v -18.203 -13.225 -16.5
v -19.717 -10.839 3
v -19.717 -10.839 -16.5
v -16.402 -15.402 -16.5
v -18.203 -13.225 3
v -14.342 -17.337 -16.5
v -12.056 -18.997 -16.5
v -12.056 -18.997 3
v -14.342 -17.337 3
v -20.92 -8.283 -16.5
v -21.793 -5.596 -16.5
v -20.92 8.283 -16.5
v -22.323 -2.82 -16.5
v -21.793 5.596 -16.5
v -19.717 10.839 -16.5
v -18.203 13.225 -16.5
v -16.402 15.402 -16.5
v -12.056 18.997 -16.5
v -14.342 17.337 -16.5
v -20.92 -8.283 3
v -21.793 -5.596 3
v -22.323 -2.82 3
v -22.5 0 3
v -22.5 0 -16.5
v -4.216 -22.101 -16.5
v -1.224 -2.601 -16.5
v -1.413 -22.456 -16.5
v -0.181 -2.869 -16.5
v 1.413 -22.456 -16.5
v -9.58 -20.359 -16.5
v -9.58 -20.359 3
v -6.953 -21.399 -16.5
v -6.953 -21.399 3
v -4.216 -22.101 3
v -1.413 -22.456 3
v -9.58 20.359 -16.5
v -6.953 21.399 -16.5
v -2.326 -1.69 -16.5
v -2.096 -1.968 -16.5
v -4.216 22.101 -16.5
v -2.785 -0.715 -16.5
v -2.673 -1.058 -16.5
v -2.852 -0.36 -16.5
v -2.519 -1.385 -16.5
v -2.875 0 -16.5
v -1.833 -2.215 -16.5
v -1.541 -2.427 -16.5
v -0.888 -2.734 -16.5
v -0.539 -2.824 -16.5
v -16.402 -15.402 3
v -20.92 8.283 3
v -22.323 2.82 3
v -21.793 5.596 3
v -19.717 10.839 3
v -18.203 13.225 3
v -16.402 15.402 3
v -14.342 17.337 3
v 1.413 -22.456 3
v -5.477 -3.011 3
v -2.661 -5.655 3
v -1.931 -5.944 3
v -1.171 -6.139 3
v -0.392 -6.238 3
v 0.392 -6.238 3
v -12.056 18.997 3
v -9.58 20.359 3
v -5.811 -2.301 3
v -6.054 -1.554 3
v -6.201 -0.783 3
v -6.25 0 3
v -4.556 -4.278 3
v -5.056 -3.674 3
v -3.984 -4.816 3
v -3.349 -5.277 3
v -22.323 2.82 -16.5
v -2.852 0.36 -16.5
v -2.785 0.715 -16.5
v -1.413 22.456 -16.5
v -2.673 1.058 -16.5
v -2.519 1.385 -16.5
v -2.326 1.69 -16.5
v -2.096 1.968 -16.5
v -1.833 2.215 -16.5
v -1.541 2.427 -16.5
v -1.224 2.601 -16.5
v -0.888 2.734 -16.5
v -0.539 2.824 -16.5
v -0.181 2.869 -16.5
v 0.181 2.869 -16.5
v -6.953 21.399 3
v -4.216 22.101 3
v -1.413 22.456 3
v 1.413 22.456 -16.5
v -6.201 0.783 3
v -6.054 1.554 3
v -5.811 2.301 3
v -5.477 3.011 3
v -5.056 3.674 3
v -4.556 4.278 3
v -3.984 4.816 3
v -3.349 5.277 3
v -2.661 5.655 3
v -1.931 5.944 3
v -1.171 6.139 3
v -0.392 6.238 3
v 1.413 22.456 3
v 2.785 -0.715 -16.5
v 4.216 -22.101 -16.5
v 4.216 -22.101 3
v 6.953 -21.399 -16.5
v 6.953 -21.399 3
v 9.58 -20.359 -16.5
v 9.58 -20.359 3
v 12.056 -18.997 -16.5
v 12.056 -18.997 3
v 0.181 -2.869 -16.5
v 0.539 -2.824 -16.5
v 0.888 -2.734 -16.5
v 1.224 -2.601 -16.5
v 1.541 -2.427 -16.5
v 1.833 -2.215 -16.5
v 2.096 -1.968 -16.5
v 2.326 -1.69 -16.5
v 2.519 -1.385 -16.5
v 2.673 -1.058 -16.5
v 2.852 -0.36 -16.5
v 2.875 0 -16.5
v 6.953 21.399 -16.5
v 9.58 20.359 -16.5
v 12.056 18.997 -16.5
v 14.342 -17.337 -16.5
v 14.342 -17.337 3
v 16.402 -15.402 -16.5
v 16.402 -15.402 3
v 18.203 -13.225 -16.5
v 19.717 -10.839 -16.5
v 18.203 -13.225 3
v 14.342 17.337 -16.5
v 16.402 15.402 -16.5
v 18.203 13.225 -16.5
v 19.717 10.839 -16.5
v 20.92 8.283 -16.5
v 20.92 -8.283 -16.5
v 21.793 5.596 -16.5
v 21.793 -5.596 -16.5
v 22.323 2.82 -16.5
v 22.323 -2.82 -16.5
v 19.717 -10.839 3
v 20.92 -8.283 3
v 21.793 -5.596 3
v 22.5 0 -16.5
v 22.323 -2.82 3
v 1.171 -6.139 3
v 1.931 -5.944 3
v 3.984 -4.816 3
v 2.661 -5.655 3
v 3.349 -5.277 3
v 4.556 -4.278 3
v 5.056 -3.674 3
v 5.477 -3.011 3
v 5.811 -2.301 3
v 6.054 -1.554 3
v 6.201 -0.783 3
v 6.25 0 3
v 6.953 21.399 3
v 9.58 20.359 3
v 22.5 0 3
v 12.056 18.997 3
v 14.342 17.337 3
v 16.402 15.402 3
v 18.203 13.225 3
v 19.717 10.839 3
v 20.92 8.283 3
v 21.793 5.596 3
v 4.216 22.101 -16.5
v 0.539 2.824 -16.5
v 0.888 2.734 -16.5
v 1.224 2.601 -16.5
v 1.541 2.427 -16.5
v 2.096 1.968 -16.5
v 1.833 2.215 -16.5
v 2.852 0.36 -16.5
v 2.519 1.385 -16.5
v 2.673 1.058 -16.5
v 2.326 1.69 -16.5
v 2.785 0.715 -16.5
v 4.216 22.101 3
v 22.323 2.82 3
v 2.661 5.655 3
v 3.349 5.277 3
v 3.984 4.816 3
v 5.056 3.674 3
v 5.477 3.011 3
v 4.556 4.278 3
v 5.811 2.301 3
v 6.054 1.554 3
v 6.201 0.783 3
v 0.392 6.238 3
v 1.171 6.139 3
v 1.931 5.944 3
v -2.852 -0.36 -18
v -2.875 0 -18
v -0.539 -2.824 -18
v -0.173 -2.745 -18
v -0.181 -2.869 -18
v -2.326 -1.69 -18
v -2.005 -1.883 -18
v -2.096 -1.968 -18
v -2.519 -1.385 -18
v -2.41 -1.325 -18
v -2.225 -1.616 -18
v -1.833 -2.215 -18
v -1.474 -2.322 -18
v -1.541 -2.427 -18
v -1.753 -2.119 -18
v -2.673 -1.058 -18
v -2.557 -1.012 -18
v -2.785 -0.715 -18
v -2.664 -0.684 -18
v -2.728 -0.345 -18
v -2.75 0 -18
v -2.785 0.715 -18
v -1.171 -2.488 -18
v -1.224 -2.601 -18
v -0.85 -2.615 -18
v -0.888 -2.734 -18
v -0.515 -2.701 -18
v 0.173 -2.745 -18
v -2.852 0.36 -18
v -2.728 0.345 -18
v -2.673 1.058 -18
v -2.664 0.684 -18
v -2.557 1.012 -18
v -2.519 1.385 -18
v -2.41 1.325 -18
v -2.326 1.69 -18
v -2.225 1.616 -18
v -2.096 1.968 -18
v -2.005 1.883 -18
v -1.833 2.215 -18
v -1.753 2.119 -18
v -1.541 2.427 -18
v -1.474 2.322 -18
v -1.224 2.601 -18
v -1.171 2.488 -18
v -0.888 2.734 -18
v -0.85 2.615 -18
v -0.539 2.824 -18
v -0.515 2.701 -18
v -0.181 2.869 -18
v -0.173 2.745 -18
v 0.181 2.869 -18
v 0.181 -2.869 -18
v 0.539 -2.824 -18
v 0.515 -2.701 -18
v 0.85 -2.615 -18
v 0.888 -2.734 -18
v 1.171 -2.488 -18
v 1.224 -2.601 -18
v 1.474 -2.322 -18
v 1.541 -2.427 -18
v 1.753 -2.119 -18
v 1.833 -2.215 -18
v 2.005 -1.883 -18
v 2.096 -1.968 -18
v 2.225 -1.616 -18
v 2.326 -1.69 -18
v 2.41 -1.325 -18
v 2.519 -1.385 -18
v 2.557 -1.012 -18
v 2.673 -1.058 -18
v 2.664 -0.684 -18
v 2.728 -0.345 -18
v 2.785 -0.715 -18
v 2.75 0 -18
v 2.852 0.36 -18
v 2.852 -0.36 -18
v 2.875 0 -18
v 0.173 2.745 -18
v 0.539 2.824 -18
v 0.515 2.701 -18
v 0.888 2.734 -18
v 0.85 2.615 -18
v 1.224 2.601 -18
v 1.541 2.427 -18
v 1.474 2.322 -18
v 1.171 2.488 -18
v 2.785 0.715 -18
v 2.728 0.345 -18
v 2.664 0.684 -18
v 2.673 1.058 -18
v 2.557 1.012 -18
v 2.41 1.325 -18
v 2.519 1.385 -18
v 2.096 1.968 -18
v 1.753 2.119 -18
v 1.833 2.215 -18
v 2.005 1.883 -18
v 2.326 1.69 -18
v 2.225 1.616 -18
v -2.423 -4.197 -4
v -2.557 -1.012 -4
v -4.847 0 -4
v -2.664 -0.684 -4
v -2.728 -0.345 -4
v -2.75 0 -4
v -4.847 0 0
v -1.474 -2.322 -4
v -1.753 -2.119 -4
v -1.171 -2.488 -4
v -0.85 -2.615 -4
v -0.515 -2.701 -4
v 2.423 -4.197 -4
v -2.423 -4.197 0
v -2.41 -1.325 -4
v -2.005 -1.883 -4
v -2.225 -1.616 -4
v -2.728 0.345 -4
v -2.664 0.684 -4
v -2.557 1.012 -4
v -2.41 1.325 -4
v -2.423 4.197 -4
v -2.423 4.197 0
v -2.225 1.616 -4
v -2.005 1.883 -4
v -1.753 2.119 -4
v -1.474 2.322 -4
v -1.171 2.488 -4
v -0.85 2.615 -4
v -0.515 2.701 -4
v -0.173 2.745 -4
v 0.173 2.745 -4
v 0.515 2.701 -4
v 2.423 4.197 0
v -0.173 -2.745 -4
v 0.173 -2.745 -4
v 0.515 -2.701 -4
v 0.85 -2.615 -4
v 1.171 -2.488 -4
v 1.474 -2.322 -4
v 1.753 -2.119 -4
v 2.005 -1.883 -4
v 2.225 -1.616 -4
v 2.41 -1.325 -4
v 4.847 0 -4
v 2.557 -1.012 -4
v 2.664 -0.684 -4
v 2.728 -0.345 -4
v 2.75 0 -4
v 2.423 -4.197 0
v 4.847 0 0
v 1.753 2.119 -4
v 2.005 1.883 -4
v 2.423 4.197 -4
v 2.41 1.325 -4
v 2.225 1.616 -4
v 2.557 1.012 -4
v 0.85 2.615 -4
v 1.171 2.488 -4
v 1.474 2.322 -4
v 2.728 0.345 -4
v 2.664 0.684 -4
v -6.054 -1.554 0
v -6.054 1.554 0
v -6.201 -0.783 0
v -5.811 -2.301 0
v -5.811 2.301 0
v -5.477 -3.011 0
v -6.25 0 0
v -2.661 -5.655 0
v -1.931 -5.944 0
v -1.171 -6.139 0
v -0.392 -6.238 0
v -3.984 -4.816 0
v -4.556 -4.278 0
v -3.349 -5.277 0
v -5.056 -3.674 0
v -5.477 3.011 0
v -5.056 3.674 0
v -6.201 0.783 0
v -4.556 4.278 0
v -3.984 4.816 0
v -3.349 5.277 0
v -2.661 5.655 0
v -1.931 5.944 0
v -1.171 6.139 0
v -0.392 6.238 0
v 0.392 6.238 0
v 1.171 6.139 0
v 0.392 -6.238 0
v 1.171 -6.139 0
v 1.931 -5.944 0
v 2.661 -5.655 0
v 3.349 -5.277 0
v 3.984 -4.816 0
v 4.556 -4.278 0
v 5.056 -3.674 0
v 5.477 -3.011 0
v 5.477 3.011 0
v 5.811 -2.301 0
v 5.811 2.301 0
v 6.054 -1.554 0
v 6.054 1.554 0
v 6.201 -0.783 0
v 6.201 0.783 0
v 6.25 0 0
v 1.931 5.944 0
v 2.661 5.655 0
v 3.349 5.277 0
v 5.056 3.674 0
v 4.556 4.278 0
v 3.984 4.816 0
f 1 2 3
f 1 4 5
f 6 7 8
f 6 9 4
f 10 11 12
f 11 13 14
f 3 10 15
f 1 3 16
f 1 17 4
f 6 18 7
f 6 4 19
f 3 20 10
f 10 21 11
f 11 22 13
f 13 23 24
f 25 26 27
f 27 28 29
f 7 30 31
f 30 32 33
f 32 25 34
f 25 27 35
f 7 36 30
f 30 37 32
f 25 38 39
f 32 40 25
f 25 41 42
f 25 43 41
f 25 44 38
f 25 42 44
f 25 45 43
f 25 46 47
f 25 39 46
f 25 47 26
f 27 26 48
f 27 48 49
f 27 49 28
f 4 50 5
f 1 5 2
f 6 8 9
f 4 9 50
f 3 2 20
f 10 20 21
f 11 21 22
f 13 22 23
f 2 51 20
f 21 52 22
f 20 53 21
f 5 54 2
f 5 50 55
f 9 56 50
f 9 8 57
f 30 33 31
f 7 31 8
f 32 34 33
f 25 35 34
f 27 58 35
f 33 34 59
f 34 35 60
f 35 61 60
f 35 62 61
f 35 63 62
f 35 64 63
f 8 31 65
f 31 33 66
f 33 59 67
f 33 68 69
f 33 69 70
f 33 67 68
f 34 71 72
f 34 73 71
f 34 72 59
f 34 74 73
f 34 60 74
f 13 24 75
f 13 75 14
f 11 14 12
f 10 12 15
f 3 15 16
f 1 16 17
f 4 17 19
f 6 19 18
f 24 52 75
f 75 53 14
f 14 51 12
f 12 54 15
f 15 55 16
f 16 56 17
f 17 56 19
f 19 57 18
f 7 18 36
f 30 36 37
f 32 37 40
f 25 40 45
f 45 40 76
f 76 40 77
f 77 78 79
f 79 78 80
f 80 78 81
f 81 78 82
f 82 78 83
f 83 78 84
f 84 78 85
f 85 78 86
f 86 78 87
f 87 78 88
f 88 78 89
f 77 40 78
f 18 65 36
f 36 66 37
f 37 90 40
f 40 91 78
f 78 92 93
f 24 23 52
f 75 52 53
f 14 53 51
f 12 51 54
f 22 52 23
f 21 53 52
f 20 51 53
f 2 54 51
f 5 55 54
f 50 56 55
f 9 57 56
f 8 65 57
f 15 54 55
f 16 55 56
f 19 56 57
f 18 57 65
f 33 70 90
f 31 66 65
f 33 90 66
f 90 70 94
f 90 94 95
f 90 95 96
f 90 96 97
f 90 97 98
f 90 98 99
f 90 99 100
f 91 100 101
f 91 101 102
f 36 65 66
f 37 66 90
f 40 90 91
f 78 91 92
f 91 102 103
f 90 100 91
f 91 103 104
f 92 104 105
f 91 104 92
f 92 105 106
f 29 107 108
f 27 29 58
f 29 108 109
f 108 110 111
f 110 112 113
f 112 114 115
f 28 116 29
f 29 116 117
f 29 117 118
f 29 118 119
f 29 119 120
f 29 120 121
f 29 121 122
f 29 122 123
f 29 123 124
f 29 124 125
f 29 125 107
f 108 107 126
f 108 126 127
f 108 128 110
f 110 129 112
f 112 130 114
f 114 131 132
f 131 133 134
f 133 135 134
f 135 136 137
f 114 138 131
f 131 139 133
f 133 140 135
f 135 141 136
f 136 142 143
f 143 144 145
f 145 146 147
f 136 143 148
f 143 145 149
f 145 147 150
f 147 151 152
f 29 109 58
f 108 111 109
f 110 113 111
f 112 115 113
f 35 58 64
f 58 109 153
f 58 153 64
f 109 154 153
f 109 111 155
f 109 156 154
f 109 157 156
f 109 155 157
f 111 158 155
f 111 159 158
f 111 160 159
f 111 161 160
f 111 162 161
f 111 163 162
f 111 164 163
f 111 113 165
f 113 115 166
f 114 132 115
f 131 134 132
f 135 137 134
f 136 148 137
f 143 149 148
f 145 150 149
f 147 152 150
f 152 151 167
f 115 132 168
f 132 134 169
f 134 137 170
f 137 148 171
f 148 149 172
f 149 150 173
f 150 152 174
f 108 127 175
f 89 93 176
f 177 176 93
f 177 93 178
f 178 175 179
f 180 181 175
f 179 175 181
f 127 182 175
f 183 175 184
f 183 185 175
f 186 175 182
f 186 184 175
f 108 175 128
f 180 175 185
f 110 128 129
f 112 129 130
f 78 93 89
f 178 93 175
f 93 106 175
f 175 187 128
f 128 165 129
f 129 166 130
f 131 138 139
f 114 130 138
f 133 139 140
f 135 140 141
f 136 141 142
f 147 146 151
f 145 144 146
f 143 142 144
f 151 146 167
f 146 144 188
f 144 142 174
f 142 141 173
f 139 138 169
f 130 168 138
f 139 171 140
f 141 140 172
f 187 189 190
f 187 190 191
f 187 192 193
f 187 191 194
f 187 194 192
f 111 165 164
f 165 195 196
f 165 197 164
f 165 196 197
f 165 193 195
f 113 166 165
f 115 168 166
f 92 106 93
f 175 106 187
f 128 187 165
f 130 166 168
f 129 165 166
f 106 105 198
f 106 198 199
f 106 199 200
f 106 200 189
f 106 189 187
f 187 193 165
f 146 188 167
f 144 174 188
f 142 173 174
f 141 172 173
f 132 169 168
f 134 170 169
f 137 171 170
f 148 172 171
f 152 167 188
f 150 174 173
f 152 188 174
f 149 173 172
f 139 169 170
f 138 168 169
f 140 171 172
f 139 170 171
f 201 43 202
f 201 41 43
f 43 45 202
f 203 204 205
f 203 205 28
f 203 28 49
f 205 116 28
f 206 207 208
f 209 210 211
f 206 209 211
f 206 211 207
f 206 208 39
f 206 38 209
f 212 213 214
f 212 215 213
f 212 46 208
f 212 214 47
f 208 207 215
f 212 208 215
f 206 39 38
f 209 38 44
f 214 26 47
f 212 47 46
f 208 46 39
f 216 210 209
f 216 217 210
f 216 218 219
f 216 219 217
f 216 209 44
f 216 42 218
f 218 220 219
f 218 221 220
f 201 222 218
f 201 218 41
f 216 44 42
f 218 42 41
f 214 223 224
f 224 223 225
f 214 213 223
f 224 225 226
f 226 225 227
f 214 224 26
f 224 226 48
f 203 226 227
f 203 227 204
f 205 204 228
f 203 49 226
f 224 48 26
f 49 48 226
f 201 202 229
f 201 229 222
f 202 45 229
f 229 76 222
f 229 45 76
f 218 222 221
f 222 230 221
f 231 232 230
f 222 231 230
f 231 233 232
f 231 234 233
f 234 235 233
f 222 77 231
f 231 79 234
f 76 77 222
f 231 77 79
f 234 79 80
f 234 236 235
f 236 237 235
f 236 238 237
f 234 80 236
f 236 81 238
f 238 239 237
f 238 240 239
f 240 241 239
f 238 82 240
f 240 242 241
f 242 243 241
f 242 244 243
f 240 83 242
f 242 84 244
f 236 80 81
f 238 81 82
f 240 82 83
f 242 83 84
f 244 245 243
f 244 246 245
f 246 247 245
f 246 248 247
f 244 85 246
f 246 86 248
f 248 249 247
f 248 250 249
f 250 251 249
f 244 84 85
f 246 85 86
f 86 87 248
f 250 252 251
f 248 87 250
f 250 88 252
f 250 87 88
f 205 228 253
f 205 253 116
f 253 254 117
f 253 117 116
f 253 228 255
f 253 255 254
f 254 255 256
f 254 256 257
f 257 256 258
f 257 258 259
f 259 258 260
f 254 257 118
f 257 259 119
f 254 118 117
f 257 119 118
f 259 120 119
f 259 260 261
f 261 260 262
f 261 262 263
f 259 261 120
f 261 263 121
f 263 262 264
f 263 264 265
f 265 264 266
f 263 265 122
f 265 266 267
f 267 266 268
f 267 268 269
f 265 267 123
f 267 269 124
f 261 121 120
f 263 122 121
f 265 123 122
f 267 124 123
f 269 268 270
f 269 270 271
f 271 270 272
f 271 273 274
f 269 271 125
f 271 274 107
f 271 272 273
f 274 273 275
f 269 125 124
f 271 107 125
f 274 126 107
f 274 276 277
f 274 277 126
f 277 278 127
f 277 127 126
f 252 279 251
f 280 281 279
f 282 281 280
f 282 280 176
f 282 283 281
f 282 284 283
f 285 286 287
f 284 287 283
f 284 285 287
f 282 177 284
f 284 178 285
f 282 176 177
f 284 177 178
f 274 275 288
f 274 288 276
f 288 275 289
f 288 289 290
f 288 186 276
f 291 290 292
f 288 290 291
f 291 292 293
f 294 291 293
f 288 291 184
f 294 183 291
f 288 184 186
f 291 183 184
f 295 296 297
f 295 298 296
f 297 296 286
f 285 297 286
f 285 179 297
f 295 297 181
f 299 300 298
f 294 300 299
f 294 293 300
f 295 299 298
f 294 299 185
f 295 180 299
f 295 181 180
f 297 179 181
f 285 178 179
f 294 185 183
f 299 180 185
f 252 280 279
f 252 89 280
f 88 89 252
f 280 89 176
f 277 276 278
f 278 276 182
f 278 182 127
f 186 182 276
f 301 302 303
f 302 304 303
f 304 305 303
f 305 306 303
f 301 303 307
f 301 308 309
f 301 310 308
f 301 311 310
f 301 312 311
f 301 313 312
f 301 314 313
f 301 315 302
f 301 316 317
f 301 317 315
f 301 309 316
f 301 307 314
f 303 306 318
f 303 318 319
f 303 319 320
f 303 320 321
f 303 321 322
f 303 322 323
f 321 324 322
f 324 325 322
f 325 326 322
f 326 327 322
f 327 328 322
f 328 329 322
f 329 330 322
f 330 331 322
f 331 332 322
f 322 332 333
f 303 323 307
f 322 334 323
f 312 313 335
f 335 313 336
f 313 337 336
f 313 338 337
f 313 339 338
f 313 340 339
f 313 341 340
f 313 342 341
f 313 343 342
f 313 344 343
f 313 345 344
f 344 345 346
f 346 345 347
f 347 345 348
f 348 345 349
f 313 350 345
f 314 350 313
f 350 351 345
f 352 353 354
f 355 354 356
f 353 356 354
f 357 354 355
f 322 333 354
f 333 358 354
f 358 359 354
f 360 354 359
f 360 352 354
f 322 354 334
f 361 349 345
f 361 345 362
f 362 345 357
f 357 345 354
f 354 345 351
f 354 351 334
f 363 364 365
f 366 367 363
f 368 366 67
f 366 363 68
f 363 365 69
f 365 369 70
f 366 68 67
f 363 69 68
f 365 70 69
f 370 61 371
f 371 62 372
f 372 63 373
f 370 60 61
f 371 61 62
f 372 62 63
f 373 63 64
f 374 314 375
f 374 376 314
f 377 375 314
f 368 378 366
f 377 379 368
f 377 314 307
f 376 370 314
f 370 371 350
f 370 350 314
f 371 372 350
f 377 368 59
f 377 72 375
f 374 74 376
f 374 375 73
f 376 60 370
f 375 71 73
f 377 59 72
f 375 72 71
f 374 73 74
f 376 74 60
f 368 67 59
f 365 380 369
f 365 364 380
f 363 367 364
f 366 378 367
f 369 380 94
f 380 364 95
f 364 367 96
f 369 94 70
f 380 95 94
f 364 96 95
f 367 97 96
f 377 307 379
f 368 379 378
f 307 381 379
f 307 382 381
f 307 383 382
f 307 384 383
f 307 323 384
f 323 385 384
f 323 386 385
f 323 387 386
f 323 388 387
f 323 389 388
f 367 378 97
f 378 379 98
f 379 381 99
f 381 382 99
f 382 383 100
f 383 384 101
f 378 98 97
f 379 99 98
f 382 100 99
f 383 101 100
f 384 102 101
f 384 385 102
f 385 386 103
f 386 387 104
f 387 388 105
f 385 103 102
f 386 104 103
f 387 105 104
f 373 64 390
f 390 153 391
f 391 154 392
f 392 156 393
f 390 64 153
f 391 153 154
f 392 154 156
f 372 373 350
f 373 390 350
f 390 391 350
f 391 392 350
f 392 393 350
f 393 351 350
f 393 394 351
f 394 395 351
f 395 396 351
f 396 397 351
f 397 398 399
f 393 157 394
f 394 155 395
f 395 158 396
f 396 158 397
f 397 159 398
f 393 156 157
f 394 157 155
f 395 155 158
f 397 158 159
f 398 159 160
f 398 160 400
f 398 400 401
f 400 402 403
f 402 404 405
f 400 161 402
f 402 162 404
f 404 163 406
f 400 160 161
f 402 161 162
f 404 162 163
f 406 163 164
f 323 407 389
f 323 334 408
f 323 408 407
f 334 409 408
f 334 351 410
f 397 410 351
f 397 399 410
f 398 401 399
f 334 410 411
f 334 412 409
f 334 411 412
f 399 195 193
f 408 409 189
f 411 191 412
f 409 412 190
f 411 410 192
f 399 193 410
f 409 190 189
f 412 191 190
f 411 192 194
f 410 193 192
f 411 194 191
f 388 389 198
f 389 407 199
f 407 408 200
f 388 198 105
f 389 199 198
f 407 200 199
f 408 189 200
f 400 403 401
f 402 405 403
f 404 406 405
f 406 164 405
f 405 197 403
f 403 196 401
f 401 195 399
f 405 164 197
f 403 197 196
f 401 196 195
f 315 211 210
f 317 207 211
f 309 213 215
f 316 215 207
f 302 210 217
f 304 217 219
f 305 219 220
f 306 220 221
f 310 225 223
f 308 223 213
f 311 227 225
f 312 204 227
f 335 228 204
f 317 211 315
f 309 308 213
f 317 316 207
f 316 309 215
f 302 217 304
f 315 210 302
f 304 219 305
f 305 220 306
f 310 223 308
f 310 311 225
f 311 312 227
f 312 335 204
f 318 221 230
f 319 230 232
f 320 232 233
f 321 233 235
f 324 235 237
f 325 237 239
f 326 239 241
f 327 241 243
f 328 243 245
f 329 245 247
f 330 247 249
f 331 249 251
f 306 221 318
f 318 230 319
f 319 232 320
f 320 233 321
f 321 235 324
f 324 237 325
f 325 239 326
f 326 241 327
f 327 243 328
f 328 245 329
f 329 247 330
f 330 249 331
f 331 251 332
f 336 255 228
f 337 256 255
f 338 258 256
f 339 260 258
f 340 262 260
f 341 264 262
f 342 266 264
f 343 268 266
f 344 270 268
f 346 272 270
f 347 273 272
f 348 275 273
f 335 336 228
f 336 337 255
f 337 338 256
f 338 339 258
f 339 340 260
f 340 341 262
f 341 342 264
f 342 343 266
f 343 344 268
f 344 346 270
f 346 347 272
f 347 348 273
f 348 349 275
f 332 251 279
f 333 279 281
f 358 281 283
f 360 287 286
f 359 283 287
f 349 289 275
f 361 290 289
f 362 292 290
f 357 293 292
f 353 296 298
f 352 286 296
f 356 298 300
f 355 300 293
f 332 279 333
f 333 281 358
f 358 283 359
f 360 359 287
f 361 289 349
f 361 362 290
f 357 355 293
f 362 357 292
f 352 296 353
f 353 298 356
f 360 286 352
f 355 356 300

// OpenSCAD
$fn = 50;

difference() {
	union() {
		translate(v = [0, 0, -16.5]) {
			cylinder(h = 19.5, r = 22.5);
		}
		#translate(v = [0, 0, -18.0]) {
			cylinder(h = 18, r = 2.875);
		}
	}
	union() {
		translate(v = [0, 0, 0]) {
			rotate(a = [0, 0, 0]) {
				difference() {
					union() {
						translate(v = [0, 0, -4]) {
							linear_extrude(height = 4) {
								polygon(points = [[4.8468, 0.0], [2.4234000000000004, 4.197451927062417], [-2.423399999999999, 4.197451927062417], [-4.8468, 5.935618106107392e-16], [-2.423400000000002, -4.197451927062416], [2.423399999999997, -4.197451927062419]]);
							}
						}
					}
					union();
				}
			}
		}
		#cylinder(h = 3, r = 6.25);
		#translate(v = [0, 0, -100.0]) {
			cylinder(h = 200, r = 2.75);
		}
	}
}
